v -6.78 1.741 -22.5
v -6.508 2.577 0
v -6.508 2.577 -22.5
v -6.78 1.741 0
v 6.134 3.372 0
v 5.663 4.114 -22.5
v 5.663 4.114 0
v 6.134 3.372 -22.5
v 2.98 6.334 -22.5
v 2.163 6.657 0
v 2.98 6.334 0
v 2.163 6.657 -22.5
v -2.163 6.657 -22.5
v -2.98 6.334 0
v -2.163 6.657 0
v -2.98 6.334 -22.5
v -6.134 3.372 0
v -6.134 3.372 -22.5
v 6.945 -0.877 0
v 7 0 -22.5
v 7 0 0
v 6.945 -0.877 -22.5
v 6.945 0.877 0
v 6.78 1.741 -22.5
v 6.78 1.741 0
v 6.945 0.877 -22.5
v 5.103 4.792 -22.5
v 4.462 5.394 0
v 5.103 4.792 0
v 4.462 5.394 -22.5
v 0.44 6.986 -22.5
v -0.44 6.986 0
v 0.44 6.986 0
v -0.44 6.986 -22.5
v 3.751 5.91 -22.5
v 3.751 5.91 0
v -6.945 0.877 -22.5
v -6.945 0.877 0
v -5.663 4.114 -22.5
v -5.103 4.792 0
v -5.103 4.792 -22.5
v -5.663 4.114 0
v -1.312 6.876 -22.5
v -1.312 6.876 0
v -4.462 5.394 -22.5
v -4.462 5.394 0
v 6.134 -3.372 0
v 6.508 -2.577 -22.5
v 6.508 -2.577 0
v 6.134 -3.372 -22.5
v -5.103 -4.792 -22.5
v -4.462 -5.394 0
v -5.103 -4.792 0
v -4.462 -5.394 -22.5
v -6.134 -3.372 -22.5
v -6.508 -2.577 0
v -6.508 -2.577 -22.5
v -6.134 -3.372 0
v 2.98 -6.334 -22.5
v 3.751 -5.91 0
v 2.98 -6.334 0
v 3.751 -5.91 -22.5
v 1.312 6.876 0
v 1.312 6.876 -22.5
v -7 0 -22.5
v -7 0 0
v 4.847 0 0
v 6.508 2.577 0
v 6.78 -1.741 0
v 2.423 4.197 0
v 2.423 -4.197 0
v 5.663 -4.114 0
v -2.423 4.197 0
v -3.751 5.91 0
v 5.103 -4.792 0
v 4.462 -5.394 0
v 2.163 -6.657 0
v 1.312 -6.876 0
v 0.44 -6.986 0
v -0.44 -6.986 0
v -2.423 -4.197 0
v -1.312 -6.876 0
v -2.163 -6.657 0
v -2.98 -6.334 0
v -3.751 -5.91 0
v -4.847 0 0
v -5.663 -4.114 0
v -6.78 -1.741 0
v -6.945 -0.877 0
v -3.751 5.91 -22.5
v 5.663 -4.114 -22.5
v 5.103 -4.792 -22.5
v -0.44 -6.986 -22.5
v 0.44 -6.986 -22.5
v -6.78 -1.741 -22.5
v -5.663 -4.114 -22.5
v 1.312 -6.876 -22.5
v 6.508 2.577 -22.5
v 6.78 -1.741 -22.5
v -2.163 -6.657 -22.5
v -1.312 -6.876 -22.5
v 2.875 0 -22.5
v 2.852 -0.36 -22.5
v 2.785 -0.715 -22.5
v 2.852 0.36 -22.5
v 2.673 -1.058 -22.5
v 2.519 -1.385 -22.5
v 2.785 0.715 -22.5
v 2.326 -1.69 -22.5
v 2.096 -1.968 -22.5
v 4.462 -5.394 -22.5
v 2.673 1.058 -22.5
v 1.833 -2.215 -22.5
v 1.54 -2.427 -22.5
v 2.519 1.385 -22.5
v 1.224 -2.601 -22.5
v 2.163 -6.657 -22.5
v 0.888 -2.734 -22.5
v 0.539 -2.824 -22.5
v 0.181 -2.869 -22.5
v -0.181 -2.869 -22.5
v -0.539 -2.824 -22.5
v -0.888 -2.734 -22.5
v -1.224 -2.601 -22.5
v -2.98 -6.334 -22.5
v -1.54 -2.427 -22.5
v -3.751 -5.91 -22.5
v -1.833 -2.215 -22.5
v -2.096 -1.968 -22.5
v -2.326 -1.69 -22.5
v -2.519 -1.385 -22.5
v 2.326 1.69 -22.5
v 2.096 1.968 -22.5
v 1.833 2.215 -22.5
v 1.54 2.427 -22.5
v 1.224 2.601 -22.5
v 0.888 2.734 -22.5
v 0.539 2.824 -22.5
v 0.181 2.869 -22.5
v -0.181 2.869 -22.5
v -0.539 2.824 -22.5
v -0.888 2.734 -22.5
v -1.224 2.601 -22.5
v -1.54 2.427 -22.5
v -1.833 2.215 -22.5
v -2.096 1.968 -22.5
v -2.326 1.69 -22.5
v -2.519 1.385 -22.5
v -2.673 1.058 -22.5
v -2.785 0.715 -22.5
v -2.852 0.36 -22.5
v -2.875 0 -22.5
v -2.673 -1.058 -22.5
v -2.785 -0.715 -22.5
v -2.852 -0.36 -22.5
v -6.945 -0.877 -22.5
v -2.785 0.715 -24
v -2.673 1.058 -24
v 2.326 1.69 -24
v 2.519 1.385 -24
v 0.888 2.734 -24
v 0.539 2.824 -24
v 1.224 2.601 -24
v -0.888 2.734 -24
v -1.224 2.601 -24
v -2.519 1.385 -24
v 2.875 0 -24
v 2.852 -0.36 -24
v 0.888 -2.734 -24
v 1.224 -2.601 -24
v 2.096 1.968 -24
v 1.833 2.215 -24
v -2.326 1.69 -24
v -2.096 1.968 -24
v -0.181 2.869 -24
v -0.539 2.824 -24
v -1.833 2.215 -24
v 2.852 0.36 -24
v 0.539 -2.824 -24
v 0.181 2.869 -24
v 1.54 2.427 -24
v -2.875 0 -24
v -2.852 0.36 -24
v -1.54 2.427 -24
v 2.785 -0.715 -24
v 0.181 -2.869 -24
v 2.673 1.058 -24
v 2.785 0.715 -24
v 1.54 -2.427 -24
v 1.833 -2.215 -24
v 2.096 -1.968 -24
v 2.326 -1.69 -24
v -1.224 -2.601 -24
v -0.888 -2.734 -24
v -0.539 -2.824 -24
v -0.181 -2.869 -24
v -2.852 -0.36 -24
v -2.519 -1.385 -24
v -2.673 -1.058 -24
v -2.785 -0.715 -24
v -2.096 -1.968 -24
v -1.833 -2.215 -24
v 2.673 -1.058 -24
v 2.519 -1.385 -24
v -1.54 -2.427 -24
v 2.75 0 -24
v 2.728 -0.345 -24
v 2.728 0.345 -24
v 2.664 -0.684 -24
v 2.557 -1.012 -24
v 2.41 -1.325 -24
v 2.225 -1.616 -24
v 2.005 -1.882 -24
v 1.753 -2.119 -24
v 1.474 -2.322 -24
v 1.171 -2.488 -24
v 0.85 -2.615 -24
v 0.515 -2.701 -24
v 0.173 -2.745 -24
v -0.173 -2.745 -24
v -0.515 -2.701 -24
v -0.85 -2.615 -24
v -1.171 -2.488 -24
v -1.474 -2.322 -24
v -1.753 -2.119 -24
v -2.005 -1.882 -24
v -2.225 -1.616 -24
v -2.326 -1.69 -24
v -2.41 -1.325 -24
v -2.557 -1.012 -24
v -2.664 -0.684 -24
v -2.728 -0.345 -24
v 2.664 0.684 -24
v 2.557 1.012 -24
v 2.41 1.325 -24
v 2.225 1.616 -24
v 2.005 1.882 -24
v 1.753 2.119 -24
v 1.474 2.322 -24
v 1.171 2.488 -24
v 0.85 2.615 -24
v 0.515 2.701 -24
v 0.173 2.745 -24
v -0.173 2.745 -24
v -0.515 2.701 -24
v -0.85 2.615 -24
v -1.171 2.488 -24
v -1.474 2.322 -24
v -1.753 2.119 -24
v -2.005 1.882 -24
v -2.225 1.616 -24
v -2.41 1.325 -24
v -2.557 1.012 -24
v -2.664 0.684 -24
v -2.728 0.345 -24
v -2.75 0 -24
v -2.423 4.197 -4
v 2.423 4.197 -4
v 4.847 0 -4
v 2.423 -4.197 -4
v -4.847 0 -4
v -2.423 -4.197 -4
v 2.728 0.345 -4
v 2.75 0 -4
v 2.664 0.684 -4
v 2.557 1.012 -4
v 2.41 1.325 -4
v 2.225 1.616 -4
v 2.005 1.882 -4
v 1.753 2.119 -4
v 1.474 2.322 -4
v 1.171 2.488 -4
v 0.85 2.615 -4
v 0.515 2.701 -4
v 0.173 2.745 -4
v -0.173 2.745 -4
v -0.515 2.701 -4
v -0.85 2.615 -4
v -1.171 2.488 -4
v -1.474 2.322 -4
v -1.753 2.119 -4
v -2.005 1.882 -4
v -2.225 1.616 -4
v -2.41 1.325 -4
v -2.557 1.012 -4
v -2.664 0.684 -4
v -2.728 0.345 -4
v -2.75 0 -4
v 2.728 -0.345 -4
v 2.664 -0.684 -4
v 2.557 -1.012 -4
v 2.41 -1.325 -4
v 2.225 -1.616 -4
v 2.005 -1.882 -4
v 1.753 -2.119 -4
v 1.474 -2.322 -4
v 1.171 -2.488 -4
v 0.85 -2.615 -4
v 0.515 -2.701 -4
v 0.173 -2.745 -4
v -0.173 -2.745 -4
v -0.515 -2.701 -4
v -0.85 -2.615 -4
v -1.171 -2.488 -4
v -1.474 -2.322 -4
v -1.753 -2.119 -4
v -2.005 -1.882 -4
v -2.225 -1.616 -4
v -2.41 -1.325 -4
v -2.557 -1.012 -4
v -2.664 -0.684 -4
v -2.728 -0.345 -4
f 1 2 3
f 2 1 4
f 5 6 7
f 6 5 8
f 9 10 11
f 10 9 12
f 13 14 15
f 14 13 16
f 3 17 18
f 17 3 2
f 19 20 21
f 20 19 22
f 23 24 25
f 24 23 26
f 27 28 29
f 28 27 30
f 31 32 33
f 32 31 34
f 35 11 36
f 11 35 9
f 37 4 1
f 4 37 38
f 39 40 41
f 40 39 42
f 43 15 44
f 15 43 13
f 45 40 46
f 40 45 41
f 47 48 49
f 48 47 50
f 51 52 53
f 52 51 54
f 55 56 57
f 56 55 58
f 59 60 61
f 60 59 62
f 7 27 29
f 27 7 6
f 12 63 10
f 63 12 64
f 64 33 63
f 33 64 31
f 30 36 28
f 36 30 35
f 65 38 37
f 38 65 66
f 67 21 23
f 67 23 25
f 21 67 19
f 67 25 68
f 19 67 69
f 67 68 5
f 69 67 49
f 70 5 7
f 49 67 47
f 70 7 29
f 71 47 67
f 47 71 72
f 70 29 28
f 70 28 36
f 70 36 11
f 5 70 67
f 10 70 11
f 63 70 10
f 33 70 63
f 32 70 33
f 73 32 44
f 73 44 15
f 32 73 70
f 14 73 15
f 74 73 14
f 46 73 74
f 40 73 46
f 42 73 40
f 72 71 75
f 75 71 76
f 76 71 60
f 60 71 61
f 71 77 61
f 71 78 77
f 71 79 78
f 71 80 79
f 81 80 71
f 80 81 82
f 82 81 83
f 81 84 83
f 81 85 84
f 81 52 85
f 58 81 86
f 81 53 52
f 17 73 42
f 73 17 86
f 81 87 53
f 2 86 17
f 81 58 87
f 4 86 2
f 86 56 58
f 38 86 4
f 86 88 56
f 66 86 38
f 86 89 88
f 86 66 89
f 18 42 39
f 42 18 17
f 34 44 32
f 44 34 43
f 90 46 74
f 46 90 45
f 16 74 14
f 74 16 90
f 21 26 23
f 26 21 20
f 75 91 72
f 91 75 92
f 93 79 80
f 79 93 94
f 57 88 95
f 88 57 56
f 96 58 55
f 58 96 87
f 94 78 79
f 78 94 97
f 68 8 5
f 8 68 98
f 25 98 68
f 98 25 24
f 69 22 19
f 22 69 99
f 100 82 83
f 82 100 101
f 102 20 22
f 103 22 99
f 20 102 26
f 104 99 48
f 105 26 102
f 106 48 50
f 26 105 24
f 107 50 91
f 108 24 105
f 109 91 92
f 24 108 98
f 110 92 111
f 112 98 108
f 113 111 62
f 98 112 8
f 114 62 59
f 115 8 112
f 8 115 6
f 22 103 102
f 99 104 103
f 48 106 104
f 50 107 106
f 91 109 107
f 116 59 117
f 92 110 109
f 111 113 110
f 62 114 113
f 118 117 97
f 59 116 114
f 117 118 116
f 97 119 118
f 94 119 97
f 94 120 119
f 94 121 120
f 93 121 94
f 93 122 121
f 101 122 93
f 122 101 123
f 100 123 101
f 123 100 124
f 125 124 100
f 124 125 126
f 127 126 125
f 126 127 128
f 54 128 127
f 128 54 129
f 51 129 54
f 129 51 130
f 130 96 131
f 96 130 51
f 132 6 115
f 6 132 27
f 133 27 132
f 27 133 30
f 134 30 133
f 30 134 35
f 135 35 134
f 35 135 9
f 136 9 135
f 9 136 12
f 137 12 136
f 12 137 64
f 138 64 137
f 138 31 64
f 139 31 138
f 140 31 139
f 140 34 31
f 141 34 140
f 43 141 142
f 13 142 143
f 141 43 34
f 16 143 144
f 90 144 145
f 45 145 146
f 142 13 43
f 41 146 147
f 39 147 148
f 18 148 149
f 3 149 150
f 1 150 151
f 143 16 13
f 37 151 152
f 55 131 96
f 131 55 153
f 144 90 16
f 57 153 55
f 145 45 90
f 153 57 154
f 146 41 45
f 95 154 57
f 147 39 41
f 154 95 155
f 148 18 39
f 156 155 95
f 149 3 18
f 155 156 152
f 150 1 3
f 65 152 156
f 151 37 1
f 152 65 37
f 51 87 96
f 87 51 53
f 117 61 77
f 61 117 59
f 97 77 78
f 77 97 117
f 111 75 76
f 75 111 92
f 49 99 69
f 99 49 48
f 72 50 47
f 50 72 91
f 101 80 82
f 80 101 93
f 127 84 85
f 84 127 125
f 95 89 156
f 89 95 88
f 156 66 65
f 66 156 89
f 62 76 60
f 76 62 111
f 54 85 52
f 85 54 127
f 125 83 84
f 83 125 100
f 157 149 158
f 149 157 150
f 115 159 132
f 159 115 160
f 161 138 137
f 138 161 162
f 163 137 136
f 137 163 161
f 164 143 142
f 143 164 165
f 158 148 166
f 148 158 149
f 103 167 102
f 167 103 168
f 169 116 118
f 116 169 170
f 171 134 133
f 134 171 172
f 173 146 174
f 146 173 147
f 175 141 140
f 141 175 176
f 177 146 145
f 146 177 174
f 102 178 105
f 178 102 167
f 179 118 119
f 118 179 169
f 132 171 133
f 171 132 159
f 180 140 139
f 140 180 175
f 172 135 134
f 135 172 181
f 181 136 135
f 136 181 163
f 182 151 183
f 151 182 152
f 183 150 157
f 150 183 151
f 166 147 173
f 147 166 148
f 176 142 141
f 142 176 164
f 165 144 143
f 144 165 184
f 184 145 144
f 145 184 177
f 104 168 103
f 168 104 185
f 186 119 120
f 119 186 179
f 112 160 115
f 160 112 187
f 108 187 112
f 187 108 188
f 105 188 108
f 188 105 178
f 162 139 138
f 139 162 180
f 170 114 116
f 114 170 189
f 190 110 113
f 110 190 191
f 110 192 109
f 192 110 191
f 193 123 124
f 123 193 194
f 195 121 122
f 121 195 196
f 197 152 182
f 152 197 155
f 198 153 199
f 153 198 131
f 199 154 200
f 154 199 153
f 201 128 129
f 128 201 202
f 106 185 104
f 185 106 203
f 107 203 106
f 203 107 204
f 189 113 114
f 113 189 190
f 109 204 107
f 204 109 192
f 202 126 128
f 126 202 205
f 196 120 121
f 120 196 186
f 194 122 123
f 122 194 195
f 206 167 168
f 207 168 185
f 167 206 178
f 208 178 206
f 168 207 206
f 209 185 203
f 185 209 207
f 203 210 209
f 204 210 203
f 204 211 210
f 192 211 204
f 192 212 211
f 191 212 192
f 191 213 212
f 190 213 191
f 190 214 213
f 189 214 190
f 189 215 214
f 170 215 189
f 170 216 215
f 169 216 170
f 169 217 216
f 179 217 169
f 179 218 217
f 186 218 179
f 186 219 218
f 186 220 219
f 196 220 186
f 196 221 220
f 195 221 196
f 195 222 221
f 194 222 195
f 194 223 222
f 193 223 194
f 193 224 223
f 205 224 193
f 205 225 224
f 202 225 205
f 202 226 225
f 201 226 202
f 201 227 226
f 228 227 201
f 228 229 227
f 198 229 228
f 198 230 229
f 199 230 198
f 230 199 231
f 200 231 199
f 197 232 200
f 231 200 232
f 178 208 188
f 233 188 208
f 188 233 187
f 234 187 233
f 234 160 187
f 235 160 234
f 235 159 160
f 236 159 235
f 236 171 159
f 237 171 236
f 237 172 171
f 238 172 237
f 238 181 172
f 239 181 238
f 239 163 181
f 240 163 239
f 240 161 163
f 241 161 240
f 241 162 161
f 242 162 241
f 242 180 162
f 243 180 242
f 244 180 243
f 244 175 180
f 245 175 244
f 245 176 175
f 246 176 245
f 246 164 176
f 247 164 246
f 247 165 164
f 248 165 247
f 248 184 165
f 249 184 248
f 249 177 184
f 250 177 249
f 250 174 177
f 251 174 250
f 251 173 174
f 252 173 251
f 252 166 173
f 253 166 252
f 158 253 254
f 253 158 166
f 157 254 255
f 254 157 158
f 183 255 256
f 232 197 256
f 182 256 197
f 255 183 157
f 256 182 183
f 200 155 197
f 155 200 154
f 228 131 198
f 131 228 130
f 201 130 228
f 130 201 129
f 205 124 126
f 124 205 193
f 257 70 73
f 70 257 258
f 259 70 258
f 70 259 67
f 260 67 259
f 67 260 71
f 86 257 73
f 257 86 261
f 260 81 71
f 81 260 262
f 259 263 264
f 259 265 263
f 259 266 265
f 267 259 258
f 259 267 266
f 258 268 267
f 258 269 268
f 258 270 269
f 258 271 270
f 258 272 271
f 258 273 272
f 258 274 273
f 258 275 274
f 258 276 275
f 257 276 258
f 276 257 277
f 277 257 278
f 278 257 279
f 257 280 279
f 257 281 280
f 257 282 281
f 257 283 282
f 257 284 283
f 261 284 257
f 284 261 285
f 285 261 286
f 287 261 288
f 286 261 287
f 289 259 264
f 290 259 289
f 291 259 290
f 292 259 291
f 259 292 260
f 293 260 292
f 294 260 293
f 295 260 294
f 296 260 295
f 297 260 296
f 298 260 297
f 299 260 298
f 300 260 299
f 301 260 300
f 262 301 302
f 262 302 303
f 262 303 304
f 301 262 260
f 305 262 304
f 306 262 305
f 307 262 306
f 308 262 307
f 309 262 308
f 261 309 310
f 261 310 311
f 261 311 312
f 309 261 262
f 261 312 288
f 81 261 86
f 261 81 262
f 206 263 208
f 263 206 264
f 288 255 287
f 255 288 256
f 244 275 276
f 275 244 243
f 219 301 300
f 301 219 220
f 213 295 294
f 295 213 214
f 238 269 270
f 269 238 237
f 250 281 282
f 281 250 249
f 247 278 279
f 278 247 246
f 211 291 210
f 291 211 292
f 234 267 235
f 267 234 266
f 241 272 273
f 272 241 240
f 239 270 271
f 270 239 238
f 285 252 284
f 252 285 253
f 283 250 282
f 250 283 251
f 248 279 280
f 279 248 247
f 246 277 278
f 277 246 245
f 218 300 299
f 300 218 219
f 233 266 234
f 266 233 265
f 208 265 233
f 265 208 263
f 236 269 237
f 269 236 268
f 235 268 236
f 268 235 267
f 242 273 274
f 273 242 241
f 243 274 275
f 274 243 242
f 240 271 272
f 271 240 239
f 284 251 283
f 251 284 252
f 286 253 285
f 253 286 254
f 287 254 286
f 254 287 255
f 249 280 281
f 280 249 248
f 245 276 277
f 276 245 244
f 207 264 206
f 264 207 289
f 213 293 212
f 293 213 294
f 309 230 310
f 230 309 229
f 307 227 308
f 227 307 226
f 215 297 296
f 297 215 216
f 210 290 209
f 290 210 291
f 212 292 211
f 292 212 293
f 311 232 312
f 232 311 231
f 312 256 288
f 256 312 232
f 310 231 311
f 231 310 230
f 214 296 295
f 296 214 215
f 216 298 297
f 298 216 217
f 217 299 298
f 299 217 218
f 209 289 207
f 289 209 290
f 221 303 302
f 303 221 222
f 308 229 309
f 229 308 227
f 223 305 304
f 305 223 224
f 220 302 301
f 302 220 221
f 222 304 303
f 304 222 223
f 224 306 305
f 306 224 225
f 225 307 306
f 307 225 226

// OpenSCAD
$fn = 50;


difference() {
	union() {
		translate(v = [0, 0, -22.5000000000]) {
			cylinder(h = 22.5000000000, r = 7.0000000000);
		}
		#translate(v = [0, 0, -24.0000000000]) {
			cylinder(h = 24, r = 2.8750000000);
		}
	}
	union() {
		translate(v = [0, 0, 0]) {
			rotate(a = [0, 0, 0]) {
				difference() {
					union() {
						translate(v = [0, 0, -4]) {
							linear_extrude(height = 4) {
								polygon(points = [[4.8468000000, 0.0000000000], [2.4234000000, 4.1974519271], [-2.4234000000, 4.1974519271], [-4.8468000000, 0.0000000000], [-2.4234000000, -4.1974519271], [2.4234000000, -4.1974519271]]);
							}
						}
					}
					union();
				}
			}
		}
		#translate(v = [0, 0, -100.0000000000]) {
			cylinder(h = 200, r = 2.7500000000);
		}
	}
}
